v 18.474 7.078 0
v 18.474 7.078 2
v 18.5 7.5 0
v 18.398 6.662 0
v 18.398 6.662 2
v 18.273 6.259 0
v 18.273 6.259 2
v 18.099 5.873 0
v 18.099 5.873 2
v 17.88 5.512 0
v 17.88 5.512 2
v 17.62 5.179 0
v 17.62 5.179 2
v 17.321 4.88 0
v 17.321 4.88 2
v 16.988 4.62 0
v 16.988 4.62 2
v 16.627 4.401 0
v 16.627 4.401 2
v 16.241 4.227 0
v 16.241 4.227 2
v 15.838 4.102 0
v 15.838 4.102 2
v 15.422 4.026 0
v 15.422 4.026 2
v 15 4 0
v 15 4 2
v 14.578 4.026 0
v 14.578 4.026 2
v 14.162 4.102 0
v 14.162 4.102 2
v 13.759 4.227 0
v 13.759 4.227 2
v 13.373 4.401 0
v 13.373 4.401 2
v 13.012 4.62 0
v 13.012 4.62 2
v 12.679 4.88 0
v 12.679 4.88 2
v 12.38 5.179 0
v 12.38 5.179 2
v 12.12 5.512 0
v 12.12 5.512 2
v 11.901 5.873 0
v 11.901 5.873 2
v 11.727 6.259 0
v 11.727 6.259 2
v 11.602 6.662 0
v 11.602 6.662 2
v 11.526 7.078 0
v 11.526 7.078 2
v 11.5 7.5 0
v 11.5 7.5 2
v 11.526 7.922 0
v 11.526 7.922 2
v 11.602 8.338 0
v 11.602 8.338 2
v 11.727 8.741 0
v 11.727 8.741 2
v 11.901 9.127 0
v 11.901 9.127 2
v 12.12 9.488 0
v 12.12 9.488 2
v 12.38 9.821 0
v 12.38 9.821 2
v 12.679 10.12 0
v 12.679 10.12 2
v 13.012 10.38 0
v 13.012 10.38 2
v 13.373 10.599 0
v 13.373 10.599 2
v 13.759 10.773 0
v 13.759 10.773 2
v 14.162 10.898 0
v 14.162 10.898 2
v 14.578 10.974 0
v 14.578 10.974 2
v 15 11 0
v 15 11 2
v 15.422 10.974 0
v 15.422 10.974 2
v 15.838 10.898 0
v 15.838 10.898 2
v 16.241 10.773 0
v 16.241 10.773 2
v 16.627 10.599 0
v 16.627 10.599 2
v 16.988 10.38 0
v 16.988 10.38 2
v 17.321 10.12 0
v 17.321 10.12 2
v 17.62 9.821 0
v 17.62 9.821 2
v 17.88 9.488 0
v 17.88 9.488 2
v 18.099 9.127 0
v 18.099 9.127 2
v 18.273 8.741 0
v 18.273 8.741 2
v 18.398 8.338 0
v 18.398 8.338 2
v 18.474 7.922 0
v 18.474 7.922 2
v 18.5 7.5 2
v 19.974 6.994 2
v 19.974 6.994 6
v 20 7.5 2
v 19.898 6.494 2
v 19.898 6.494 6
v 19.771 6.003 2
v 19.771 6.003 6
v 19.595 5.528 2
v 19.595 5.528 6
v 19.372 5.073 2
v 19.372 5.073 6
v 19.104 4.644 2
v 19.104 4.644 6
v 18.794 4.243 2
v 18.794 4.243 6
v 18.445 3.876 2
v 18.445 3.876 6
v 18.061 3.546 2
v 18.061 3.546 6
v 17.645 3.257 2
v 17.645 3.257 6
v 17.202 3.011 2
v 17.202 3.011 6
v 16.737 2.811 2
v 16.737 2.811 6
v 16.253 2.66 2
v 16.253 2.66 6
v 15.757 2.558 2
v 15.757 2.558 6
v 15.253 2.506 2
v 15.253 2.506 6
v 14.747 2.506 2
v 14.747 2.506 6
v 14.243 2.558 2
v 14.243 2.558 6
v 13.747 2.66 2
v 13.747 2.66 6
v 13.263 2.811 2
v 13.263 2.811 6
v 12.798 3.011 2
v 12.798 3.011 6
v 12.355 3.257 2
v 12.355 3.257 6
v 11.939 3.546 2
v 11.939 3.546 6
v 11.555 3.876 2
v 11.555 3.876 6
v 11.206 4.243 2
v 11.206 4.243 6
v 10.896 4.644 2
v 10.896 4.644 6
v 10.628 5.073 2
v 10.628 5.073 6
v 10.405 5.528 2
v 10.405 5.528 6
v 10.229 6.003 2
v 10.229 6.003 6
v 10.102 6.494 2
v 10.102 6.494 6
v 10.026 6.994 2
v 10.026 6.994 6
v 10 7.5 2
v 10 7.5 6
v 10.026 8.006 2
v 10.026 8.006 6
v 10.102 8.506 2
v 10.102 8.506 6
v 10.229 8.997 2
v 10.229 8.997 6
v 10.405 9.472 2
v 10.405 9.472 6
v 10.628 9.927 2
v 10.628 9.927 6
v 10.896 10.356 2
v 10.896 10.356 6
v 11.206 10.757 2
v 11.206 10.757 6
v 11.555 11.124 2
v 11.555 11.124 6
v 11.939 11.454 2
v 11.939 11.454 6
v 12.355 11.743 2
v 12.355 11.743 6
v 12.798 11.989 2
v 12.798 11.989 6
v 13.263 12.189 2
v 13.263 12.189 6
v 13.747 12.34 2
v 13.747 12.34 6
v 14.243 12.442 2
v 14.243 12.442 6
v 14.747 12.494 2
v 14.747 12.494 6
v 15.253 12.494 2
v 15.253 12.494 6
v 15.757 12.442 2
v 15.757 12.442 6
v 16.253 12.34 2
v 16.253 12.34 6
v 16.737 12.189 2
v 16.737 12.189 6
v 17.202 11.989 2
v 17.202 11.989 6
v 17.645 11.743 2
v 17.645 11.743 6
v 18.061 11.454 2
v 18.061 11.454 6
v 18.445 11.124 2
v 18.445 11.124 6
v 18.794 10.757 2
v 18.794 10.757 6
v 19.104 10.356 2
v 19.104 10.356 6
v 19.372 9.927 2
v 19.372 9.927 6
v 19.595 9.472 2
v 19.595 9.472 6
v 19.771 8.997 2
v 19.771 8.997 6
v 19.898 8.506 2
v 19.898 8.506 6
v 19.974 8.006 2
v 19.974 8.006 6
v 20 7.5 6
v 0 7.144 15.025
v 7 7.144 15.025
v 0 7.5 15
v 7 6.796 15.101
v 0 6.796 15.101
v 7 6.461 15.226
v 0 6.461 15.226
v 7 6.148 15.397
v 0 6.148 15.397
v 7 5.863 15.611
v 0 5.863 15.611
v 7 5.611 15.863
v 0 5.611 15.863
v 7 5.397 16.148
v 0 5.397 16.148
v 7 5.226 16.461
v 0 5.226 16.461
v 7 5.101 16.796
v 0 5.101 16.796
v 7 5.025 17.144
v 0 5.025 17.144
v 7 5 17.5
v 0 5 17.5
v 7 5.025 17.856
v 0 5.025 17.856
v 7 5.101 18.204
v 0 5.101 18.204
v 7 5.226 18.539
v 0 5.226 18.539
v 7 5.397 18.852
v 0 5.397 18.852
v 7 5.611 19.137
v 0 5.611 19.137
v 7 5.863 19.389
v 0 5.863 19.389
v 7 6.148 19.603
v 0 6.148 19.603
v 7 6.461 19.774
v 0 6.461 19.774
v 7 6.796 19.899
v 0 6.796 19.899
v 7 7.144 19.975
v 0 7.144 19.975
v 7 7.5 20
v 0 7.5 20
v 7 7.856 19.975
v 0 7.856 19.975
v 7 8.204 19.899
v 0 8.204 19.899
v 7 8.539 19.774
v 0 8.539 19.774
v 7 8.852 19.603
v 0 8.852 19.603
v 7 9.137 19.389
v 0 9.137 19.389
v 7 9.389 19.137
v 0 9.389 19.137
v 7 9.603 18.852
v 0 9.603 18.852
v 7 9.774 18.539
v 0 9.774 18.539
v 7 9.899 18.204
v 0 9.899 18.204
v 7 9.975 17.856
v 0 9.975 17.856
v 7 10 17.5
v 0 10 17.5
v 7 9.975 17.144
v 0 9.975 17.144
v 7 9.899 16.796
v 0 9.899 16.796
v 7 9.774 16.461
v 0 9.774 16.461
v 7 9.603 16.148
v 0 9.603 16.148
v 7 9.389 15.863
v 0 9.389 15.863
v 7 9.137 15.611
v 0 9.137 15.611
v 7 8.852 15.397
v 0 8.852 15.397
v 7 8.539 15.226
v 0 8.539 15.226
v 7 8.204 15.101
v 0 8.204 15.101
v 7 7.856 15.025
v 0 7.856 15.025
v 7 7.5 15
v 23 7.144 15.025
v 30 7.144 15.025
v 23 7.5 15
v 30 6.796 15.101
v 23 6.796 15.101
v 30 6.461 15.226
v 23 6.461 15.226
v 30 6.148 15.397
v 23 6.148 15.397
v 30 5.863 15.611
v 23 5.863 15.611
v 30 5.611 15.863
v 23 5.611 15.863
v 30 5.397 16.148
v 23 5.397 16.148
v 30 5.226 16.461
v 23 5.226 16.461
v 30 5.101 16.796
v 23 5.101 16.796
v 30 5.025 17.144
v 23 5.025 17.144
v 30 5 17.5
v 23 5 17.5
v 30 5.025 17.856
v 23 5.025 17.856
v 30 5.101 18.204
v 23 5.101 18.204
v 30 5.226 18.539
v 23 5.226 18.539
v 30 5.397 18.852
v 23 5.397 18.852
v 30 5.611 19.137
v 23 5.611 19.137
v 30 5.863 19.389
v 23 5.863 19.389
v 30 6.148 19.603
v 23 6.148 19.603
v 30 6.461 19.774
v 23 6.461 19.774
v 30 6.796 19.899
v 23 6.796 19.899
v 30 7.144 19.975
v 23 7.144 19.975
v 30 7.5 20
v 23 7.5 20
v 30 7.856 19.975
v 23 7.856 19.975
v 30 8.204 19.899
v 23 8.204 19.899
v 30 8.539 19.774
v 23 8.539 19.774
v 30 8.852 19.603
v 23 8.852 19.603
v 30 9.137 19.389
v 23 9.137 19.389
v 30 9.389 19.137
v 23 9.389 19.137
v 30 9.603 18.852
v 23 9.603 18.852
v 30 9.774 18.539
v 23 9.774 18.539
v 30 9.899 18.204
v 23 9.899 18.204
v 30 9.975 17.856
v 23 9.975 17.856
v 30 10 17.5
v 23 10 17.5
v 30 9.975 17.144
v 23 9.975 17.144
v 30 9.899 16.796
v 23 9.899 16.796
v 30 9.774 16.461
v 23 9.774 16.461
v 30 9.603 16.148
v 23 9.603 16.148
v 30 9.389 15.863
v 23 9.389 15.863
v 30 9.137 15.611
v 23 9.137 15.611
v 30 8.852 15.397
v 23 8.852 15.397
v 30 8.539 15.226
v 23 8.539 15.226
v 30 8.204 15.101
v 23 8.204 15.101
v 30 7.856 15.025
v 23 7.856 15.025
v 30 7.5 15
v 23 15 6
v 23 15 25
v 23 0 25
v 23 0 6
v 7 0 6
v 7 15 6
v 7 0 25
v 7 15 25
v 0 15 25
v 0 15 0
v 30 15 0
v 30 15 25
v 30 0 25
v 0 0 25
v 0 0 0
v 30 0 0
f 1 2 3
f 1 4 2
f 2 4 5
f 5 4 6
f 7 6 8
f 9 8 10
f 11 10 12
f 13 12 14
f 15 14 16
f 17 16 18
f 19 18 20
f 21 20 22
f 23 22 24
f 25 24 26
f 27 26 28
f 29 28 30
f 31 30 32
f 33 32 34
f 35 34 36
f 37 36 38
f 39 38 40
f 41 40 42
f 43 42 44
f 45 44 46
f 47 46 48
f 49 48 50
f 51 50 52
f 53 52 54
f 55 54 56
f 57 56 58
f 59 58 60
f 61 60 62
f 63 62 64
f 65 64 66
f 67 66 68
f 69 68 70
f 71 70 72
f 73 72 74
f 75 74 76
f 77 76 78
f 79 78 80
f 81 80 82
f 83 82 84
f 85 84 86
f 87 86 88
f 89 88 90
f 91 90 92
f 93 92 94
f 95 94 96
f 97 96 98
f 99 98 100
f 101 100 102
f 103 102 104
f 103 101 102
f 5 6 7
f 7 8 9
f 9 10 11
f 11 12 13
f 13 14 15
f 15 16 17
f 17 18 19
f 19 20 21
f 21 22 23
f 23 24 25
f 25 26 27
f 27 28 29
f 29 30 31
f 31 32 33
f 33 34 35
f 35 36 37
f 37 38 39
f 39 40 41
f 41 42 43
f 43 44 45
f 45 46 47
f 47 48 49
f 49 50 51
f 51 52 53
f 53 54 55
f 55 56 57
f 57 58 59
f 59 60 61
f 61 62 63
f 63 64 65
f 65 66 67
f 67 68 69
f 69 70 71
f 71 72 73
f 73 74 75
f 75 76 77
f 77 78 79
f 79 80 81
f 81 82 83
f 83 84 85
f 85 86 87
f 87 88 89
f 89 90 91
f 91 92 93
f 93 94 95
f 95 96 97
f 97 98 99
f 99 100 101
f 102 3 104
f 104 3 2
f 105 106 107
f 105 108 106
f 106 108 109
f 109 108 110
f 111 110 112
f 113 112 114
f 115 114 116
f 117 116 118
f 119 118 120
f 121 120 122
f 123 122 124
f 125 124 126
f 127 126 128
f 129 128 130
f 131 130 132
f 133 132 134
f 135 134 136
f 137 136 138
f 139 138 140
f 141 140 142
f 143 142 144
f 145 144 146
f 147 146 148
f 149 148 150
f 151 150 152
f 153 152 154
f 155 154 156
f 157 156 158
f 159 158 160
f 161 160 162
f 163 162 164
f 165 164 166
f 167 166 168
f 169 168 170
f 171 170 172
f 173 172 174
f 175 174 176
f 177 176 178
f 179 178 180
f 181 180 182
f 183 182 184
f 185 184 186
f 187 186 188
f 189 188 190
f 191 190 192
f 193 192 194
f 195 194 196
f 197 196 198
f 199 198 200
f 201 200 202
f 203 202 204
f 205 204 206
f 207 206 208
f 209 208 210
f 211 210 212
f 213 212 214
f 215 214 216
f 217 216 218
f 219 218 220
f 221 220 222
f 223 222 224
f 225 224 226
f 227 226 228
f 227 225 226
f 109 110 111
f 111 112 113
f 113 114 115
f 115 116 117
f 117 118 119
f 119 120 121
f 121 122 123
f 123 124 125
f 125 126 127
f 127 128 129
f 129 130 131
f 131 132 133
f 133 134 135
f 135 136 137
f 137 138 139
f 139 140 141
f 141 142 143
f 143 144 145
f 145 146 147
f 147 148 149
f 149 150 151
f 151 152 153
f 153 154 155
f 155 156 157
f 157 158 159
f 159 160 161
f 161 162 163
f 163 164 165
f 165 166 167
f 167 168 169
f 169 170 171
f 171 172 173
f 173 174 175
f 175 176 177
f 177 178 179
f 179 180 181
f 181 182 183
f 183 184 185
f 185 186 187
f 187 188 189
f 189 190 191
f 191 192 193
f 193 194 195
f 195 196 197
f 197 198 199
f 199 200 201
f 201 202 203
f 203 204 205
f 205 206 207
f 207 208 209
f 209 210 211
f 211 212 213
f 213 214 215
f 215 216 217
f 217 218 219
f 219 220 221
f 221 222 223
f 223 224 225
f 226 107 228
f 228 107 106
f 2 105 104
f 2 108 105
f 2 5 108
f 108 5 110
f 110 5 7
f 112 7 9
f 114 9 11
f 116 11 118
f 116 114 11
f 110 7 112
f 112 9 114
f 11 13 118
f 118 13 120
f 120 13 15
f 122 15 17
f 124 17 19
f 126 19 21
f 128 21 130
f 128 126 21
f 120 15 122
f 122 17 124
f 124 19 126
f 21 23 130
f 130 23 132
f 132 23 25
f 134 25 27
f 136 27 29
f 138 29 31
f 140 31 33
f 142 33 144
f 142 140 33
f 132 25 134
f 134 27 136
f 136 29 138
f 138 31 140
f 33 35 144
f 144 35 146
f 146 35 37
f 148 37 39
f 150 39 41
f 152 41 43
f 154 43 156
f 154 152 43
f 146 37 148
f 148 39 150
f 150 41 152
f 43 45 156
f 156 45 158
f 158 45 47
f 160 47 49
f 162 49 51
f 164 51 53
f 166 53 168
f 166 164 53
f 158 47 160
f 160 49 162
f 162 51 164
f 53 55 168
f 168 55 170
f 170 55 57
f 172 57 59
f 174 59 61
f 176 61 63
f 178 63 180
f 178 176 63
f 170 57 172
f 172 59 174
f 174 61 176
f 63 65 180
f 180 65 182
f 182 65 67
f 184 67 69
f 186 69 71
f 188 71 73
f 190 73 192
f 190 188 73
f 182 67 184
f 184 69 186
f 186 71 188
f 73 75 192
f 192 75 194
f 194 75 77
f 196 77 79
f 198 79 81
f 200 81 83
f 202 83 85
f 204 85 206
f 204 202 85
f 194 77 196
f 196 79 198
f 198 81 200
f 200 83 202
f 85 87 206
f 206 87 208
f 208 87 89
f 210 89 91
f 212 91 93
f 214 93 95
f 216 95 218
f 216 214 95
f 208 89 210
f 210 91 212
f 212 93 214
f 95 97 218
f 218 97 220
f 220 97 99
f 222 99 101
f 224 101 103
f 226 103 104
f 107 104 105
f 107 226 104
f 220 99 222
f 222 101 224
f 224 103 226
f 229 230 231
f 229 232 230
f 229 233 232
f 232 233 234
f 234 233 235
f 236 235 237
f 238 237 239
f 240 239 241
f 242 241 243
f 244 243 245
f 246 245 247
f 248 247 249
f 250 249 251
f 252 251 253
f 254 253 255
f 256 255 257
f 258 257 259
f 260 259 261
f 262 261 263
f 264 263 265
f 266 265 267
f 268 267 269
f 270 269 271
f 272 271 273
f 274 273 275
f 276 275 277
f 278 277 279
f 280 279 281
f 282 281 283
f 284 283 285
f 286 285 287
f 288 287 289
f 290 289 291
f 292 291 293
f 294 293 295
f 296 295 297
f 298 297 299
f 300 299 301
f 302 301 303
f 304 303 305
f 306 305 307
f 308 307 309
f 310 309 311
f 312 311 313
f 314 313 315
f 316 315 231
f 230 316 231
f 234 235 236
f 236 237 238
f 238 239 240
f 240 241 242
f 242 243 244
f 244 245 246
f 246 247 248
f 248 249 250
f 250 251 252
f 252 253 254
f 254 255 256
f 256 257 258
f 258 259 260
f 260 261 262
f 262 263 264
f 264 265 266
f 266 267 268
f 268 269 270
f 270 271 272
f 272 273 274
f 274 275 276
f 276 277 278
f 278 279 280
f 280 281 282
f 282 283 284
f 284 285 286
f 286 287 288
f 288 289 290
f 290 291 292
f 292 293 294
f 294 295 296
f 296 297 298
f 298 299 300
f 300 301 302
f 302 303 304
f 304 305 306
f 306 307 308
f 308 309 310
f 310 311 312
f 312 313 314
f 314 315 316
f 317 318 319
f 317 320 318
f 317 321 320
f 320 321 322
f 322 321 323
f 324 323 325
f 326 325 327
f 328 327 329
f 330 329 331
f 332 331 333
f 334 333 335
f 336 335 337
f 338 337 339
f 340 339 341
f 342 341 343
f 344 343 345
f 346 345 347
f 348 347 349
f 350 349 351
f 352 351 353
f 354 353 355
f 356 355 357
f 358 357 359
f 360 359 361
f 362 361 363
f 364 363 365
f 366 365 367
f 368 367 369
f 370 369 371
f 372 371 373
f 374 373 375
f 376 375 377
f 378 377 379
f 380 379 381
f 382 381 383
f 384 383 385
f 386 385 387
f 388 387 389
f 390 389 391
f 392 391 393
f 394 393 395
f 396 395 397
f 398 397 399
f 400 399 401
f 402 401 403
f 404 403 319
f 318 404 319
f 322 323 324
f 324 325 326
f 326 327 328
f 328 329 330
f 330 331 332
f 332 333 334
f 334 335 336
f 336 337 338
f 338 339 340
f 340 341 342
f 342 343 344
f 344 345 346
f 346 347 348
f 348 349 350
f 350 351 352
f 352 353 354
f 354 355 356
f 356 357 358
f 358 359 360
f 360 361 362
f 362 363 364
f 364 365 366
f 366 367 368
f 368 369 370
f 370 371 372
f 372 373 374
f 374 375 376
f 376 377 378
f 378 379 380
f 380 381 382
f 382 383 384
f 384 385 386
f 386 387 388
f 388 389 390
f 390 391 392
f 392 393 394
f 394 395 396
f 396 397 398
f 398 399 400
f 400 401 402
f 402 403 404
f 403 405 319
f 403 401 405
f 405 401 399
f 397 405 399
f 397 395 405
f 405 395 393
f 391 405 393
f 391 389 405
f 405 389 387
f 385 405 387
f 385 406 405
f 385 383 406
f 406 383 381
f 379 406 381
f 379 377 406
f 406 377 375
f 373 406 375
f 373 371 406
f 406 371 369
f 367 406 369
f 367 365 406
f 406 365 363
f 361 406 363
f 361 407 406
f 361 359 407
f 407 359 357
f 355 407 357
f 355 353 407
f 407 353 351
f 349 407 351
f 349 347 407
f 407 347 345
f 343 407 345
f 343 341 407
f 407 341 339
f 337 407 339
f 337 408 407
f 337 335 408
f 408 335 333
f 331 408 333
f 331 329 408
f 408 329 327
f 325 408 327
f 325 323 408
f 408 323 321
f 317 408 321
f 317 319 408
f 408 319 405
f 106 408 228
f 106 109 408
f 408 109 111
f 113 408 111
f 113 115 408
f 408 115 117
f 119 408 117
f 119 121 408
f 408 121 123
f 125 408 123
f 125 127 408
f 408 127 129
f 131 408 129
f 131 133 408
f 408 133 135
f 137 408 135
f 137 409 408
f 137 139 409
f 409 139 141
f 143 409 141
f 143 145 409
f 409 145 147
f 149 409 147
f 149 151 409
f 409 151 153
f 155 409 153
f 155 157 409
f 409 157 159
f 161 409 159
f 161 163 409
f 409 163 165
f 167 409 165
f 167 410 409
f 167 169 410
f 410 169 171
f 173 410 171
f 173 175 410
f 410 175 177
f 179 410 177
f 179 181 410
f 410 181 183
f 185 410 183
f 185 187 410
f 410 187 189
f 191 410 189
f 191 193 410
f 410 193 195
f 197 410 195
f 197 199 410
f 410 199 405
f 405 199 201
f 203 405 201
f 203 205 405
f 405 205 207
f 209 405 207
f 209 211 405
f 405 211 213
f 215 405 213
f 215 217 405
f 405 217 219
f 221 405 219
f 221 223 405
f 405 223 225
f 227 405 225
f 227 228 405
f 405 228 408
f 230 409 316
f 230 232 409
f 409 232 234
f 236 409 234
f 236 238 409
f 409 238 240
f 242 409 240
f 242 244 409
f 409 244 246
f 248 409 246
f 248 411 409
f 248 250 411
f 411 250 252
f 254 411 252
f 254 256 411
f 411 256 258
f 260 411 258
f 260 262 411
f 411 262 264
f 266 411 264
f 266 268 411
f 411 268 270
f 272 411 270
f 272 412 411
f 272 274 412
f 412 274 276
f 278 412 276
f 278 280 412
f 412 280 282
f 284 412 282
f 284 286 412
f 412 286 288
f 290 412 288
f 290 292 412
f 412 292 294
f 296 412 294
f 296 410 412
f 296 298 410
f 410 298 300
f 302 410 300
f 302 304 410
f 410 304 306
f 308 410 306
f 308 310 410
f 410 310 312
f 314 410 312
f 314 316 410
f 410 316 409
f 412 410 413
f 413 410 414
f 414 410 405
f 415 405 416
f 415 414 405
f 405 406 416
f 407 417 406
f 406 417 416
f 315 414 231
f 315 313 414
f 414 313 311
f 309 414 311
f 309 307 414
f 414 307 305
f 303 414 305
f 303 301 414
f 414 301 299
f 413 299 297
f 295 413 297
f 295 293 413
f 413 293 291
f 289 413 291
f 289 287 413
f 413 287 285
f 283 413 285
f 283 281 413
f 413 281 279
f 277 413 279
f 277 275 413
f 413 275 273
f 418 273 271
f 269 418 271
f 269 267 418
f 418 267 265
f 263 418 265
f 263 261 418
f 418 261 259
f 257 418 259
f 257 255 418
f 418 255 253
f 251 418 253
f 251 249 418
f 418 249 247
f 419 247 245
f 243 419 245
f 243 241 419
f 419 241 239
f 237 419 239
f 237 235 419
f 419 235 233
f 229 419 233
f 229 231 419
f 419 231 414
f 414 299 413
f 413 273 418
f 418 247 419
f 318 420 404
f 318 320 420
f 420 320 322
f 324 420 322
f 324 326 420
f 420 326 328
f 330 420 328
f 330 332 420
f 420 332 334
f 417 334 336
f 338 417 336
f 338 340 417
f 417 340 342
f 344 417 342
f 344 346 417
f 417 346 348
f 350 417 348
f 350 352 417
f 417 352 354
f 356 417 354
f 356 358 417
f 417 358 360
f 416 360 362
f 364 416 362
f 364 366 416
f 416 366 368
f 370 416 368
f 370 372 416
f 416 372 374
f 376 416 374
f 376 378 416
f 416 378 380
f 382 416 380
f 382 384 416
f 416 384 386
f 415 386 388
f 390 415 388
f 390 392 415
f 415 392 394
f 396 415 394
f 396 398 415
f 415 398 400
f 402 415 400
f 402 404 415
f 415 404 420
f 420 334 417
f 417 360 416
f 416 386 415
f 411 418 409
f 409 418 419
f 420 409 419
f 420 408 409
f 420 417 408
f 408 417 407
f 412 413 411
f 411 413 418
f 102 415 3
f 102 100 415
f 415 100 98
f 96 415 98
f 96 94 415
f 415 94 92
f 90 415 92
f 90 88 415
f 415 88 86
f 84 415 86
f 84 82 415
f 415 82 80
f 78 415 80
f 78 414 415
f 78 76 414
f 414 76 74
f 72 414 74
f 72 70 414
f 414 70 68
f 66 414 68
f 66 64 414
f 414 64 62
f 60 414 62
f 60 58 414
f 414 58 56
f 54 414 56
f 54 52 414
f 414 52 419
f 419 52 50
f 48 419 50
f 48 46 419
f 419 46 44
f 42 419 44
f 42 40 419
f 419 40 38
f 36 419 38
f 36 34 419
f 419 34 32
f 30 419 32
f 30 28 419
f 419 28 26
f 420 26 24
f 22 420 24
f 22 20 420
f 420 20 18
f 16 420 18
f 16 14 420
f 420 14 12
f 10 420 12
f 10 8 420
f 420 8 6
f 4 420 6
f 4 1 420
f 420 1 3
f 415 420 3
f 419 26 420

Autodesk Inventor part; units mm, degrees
ref_plane "YZ Plane" through (0, 0, 0) normal (1, 0, 0) x (0, 1, 0)
ref_plane "XZ Plane" through (0, 0, 0) normal (0, 1, 0) x (-1, 0, 0)
ref_plane "XY Plane" through (0, 0, 0) normal (0, 0, 1) x (1, 0, 0)
sketch "Sketch1" plane through (0, 0, 0) normal (0, 0, 1) x (1, 0, 0)
  line L0 (0, 0) -> (30, 0)
  line L1 (30, 0) -> (30, 15)
  line L2 (30, 15) -> (0, 15)
  line L3 (0, 15) -> (0, 0)
  dimension "d0" = 30
  dimension "d1" = 15
extrude "Extrusion1" add sketch "Sketch1" along normal blind 25
sketch "Sketch2" plane through (0, 15, 0) normal (0, 1, 0) x (1, 0, 0)
  line L0 (30, 0) -> (0, 0) projected
  line L1 (0, 0) -> (0, -25) projected
  line L2 (30, -25) -> (0, -25) projected
  line L3 (30, 0) -> (30, -25) projected
  line L4 (7, -25) -> (23, -25)
  line L5 (23, -25) -> (23, -6)
  line L6 (23, -6) -> (7, -6)
  line L7 (7, -6) -> (7, -25)
  point P0 (0, 0)
  dimension "d5" = 16
  dimension "d27" = 7
  dimension "d28" = 6
extrude "Extrusion2" cut sketch "Sketch2" against normal up to next contours L2 L7 L6 L5
sketch "Sketch3" plane through (30, 0, 0) normal (1, 0, 0) x (0, 0, -1)
  circle A0 centre (-17.5, 7.5) radius 2.5
  line L0 (-25, 0) -> (-25, 15) projected
  line L1 (0, 15) -> (-25, 15) projected
  point P0 (0, 0)
  dimension "d10" = 5
  dimension "d11" = 7.5
  dimension "d12" = 7.5
extrude "Extrusion3" cut sketch "Sketch3" against normal through all
sketch "Sketch6" plane through (7, 15, 6) normal (0, 0, 1) x (1, 0, 0)
  circle A0 centre (8, -7.5) radius 5
  line L0 (0, 0) -> (16, 0) projected
  line L1 (16, 0) -> (16, -15) projected
  point P0 (-7, -15)
  dimension "d29" = 10
  dimension "d30" = 7.5
  dimension "d31" = 8
extrude "Extrusion6" cut sketch "Sketch6" against normal blind 4
sketch "Sketch7" plane through (15, 7.5, 2) normal (0, 0, 1) x (1, 0, 0)
  circle A0 centre (0, 0) radius 3.5
  point P0 (-15, -7.5)
  dimension "d34" = 7
extrude "Extrusion7" cut sketch "Sketch7" against normal up to next
properties part number "Arm_Pulley_Connector"
